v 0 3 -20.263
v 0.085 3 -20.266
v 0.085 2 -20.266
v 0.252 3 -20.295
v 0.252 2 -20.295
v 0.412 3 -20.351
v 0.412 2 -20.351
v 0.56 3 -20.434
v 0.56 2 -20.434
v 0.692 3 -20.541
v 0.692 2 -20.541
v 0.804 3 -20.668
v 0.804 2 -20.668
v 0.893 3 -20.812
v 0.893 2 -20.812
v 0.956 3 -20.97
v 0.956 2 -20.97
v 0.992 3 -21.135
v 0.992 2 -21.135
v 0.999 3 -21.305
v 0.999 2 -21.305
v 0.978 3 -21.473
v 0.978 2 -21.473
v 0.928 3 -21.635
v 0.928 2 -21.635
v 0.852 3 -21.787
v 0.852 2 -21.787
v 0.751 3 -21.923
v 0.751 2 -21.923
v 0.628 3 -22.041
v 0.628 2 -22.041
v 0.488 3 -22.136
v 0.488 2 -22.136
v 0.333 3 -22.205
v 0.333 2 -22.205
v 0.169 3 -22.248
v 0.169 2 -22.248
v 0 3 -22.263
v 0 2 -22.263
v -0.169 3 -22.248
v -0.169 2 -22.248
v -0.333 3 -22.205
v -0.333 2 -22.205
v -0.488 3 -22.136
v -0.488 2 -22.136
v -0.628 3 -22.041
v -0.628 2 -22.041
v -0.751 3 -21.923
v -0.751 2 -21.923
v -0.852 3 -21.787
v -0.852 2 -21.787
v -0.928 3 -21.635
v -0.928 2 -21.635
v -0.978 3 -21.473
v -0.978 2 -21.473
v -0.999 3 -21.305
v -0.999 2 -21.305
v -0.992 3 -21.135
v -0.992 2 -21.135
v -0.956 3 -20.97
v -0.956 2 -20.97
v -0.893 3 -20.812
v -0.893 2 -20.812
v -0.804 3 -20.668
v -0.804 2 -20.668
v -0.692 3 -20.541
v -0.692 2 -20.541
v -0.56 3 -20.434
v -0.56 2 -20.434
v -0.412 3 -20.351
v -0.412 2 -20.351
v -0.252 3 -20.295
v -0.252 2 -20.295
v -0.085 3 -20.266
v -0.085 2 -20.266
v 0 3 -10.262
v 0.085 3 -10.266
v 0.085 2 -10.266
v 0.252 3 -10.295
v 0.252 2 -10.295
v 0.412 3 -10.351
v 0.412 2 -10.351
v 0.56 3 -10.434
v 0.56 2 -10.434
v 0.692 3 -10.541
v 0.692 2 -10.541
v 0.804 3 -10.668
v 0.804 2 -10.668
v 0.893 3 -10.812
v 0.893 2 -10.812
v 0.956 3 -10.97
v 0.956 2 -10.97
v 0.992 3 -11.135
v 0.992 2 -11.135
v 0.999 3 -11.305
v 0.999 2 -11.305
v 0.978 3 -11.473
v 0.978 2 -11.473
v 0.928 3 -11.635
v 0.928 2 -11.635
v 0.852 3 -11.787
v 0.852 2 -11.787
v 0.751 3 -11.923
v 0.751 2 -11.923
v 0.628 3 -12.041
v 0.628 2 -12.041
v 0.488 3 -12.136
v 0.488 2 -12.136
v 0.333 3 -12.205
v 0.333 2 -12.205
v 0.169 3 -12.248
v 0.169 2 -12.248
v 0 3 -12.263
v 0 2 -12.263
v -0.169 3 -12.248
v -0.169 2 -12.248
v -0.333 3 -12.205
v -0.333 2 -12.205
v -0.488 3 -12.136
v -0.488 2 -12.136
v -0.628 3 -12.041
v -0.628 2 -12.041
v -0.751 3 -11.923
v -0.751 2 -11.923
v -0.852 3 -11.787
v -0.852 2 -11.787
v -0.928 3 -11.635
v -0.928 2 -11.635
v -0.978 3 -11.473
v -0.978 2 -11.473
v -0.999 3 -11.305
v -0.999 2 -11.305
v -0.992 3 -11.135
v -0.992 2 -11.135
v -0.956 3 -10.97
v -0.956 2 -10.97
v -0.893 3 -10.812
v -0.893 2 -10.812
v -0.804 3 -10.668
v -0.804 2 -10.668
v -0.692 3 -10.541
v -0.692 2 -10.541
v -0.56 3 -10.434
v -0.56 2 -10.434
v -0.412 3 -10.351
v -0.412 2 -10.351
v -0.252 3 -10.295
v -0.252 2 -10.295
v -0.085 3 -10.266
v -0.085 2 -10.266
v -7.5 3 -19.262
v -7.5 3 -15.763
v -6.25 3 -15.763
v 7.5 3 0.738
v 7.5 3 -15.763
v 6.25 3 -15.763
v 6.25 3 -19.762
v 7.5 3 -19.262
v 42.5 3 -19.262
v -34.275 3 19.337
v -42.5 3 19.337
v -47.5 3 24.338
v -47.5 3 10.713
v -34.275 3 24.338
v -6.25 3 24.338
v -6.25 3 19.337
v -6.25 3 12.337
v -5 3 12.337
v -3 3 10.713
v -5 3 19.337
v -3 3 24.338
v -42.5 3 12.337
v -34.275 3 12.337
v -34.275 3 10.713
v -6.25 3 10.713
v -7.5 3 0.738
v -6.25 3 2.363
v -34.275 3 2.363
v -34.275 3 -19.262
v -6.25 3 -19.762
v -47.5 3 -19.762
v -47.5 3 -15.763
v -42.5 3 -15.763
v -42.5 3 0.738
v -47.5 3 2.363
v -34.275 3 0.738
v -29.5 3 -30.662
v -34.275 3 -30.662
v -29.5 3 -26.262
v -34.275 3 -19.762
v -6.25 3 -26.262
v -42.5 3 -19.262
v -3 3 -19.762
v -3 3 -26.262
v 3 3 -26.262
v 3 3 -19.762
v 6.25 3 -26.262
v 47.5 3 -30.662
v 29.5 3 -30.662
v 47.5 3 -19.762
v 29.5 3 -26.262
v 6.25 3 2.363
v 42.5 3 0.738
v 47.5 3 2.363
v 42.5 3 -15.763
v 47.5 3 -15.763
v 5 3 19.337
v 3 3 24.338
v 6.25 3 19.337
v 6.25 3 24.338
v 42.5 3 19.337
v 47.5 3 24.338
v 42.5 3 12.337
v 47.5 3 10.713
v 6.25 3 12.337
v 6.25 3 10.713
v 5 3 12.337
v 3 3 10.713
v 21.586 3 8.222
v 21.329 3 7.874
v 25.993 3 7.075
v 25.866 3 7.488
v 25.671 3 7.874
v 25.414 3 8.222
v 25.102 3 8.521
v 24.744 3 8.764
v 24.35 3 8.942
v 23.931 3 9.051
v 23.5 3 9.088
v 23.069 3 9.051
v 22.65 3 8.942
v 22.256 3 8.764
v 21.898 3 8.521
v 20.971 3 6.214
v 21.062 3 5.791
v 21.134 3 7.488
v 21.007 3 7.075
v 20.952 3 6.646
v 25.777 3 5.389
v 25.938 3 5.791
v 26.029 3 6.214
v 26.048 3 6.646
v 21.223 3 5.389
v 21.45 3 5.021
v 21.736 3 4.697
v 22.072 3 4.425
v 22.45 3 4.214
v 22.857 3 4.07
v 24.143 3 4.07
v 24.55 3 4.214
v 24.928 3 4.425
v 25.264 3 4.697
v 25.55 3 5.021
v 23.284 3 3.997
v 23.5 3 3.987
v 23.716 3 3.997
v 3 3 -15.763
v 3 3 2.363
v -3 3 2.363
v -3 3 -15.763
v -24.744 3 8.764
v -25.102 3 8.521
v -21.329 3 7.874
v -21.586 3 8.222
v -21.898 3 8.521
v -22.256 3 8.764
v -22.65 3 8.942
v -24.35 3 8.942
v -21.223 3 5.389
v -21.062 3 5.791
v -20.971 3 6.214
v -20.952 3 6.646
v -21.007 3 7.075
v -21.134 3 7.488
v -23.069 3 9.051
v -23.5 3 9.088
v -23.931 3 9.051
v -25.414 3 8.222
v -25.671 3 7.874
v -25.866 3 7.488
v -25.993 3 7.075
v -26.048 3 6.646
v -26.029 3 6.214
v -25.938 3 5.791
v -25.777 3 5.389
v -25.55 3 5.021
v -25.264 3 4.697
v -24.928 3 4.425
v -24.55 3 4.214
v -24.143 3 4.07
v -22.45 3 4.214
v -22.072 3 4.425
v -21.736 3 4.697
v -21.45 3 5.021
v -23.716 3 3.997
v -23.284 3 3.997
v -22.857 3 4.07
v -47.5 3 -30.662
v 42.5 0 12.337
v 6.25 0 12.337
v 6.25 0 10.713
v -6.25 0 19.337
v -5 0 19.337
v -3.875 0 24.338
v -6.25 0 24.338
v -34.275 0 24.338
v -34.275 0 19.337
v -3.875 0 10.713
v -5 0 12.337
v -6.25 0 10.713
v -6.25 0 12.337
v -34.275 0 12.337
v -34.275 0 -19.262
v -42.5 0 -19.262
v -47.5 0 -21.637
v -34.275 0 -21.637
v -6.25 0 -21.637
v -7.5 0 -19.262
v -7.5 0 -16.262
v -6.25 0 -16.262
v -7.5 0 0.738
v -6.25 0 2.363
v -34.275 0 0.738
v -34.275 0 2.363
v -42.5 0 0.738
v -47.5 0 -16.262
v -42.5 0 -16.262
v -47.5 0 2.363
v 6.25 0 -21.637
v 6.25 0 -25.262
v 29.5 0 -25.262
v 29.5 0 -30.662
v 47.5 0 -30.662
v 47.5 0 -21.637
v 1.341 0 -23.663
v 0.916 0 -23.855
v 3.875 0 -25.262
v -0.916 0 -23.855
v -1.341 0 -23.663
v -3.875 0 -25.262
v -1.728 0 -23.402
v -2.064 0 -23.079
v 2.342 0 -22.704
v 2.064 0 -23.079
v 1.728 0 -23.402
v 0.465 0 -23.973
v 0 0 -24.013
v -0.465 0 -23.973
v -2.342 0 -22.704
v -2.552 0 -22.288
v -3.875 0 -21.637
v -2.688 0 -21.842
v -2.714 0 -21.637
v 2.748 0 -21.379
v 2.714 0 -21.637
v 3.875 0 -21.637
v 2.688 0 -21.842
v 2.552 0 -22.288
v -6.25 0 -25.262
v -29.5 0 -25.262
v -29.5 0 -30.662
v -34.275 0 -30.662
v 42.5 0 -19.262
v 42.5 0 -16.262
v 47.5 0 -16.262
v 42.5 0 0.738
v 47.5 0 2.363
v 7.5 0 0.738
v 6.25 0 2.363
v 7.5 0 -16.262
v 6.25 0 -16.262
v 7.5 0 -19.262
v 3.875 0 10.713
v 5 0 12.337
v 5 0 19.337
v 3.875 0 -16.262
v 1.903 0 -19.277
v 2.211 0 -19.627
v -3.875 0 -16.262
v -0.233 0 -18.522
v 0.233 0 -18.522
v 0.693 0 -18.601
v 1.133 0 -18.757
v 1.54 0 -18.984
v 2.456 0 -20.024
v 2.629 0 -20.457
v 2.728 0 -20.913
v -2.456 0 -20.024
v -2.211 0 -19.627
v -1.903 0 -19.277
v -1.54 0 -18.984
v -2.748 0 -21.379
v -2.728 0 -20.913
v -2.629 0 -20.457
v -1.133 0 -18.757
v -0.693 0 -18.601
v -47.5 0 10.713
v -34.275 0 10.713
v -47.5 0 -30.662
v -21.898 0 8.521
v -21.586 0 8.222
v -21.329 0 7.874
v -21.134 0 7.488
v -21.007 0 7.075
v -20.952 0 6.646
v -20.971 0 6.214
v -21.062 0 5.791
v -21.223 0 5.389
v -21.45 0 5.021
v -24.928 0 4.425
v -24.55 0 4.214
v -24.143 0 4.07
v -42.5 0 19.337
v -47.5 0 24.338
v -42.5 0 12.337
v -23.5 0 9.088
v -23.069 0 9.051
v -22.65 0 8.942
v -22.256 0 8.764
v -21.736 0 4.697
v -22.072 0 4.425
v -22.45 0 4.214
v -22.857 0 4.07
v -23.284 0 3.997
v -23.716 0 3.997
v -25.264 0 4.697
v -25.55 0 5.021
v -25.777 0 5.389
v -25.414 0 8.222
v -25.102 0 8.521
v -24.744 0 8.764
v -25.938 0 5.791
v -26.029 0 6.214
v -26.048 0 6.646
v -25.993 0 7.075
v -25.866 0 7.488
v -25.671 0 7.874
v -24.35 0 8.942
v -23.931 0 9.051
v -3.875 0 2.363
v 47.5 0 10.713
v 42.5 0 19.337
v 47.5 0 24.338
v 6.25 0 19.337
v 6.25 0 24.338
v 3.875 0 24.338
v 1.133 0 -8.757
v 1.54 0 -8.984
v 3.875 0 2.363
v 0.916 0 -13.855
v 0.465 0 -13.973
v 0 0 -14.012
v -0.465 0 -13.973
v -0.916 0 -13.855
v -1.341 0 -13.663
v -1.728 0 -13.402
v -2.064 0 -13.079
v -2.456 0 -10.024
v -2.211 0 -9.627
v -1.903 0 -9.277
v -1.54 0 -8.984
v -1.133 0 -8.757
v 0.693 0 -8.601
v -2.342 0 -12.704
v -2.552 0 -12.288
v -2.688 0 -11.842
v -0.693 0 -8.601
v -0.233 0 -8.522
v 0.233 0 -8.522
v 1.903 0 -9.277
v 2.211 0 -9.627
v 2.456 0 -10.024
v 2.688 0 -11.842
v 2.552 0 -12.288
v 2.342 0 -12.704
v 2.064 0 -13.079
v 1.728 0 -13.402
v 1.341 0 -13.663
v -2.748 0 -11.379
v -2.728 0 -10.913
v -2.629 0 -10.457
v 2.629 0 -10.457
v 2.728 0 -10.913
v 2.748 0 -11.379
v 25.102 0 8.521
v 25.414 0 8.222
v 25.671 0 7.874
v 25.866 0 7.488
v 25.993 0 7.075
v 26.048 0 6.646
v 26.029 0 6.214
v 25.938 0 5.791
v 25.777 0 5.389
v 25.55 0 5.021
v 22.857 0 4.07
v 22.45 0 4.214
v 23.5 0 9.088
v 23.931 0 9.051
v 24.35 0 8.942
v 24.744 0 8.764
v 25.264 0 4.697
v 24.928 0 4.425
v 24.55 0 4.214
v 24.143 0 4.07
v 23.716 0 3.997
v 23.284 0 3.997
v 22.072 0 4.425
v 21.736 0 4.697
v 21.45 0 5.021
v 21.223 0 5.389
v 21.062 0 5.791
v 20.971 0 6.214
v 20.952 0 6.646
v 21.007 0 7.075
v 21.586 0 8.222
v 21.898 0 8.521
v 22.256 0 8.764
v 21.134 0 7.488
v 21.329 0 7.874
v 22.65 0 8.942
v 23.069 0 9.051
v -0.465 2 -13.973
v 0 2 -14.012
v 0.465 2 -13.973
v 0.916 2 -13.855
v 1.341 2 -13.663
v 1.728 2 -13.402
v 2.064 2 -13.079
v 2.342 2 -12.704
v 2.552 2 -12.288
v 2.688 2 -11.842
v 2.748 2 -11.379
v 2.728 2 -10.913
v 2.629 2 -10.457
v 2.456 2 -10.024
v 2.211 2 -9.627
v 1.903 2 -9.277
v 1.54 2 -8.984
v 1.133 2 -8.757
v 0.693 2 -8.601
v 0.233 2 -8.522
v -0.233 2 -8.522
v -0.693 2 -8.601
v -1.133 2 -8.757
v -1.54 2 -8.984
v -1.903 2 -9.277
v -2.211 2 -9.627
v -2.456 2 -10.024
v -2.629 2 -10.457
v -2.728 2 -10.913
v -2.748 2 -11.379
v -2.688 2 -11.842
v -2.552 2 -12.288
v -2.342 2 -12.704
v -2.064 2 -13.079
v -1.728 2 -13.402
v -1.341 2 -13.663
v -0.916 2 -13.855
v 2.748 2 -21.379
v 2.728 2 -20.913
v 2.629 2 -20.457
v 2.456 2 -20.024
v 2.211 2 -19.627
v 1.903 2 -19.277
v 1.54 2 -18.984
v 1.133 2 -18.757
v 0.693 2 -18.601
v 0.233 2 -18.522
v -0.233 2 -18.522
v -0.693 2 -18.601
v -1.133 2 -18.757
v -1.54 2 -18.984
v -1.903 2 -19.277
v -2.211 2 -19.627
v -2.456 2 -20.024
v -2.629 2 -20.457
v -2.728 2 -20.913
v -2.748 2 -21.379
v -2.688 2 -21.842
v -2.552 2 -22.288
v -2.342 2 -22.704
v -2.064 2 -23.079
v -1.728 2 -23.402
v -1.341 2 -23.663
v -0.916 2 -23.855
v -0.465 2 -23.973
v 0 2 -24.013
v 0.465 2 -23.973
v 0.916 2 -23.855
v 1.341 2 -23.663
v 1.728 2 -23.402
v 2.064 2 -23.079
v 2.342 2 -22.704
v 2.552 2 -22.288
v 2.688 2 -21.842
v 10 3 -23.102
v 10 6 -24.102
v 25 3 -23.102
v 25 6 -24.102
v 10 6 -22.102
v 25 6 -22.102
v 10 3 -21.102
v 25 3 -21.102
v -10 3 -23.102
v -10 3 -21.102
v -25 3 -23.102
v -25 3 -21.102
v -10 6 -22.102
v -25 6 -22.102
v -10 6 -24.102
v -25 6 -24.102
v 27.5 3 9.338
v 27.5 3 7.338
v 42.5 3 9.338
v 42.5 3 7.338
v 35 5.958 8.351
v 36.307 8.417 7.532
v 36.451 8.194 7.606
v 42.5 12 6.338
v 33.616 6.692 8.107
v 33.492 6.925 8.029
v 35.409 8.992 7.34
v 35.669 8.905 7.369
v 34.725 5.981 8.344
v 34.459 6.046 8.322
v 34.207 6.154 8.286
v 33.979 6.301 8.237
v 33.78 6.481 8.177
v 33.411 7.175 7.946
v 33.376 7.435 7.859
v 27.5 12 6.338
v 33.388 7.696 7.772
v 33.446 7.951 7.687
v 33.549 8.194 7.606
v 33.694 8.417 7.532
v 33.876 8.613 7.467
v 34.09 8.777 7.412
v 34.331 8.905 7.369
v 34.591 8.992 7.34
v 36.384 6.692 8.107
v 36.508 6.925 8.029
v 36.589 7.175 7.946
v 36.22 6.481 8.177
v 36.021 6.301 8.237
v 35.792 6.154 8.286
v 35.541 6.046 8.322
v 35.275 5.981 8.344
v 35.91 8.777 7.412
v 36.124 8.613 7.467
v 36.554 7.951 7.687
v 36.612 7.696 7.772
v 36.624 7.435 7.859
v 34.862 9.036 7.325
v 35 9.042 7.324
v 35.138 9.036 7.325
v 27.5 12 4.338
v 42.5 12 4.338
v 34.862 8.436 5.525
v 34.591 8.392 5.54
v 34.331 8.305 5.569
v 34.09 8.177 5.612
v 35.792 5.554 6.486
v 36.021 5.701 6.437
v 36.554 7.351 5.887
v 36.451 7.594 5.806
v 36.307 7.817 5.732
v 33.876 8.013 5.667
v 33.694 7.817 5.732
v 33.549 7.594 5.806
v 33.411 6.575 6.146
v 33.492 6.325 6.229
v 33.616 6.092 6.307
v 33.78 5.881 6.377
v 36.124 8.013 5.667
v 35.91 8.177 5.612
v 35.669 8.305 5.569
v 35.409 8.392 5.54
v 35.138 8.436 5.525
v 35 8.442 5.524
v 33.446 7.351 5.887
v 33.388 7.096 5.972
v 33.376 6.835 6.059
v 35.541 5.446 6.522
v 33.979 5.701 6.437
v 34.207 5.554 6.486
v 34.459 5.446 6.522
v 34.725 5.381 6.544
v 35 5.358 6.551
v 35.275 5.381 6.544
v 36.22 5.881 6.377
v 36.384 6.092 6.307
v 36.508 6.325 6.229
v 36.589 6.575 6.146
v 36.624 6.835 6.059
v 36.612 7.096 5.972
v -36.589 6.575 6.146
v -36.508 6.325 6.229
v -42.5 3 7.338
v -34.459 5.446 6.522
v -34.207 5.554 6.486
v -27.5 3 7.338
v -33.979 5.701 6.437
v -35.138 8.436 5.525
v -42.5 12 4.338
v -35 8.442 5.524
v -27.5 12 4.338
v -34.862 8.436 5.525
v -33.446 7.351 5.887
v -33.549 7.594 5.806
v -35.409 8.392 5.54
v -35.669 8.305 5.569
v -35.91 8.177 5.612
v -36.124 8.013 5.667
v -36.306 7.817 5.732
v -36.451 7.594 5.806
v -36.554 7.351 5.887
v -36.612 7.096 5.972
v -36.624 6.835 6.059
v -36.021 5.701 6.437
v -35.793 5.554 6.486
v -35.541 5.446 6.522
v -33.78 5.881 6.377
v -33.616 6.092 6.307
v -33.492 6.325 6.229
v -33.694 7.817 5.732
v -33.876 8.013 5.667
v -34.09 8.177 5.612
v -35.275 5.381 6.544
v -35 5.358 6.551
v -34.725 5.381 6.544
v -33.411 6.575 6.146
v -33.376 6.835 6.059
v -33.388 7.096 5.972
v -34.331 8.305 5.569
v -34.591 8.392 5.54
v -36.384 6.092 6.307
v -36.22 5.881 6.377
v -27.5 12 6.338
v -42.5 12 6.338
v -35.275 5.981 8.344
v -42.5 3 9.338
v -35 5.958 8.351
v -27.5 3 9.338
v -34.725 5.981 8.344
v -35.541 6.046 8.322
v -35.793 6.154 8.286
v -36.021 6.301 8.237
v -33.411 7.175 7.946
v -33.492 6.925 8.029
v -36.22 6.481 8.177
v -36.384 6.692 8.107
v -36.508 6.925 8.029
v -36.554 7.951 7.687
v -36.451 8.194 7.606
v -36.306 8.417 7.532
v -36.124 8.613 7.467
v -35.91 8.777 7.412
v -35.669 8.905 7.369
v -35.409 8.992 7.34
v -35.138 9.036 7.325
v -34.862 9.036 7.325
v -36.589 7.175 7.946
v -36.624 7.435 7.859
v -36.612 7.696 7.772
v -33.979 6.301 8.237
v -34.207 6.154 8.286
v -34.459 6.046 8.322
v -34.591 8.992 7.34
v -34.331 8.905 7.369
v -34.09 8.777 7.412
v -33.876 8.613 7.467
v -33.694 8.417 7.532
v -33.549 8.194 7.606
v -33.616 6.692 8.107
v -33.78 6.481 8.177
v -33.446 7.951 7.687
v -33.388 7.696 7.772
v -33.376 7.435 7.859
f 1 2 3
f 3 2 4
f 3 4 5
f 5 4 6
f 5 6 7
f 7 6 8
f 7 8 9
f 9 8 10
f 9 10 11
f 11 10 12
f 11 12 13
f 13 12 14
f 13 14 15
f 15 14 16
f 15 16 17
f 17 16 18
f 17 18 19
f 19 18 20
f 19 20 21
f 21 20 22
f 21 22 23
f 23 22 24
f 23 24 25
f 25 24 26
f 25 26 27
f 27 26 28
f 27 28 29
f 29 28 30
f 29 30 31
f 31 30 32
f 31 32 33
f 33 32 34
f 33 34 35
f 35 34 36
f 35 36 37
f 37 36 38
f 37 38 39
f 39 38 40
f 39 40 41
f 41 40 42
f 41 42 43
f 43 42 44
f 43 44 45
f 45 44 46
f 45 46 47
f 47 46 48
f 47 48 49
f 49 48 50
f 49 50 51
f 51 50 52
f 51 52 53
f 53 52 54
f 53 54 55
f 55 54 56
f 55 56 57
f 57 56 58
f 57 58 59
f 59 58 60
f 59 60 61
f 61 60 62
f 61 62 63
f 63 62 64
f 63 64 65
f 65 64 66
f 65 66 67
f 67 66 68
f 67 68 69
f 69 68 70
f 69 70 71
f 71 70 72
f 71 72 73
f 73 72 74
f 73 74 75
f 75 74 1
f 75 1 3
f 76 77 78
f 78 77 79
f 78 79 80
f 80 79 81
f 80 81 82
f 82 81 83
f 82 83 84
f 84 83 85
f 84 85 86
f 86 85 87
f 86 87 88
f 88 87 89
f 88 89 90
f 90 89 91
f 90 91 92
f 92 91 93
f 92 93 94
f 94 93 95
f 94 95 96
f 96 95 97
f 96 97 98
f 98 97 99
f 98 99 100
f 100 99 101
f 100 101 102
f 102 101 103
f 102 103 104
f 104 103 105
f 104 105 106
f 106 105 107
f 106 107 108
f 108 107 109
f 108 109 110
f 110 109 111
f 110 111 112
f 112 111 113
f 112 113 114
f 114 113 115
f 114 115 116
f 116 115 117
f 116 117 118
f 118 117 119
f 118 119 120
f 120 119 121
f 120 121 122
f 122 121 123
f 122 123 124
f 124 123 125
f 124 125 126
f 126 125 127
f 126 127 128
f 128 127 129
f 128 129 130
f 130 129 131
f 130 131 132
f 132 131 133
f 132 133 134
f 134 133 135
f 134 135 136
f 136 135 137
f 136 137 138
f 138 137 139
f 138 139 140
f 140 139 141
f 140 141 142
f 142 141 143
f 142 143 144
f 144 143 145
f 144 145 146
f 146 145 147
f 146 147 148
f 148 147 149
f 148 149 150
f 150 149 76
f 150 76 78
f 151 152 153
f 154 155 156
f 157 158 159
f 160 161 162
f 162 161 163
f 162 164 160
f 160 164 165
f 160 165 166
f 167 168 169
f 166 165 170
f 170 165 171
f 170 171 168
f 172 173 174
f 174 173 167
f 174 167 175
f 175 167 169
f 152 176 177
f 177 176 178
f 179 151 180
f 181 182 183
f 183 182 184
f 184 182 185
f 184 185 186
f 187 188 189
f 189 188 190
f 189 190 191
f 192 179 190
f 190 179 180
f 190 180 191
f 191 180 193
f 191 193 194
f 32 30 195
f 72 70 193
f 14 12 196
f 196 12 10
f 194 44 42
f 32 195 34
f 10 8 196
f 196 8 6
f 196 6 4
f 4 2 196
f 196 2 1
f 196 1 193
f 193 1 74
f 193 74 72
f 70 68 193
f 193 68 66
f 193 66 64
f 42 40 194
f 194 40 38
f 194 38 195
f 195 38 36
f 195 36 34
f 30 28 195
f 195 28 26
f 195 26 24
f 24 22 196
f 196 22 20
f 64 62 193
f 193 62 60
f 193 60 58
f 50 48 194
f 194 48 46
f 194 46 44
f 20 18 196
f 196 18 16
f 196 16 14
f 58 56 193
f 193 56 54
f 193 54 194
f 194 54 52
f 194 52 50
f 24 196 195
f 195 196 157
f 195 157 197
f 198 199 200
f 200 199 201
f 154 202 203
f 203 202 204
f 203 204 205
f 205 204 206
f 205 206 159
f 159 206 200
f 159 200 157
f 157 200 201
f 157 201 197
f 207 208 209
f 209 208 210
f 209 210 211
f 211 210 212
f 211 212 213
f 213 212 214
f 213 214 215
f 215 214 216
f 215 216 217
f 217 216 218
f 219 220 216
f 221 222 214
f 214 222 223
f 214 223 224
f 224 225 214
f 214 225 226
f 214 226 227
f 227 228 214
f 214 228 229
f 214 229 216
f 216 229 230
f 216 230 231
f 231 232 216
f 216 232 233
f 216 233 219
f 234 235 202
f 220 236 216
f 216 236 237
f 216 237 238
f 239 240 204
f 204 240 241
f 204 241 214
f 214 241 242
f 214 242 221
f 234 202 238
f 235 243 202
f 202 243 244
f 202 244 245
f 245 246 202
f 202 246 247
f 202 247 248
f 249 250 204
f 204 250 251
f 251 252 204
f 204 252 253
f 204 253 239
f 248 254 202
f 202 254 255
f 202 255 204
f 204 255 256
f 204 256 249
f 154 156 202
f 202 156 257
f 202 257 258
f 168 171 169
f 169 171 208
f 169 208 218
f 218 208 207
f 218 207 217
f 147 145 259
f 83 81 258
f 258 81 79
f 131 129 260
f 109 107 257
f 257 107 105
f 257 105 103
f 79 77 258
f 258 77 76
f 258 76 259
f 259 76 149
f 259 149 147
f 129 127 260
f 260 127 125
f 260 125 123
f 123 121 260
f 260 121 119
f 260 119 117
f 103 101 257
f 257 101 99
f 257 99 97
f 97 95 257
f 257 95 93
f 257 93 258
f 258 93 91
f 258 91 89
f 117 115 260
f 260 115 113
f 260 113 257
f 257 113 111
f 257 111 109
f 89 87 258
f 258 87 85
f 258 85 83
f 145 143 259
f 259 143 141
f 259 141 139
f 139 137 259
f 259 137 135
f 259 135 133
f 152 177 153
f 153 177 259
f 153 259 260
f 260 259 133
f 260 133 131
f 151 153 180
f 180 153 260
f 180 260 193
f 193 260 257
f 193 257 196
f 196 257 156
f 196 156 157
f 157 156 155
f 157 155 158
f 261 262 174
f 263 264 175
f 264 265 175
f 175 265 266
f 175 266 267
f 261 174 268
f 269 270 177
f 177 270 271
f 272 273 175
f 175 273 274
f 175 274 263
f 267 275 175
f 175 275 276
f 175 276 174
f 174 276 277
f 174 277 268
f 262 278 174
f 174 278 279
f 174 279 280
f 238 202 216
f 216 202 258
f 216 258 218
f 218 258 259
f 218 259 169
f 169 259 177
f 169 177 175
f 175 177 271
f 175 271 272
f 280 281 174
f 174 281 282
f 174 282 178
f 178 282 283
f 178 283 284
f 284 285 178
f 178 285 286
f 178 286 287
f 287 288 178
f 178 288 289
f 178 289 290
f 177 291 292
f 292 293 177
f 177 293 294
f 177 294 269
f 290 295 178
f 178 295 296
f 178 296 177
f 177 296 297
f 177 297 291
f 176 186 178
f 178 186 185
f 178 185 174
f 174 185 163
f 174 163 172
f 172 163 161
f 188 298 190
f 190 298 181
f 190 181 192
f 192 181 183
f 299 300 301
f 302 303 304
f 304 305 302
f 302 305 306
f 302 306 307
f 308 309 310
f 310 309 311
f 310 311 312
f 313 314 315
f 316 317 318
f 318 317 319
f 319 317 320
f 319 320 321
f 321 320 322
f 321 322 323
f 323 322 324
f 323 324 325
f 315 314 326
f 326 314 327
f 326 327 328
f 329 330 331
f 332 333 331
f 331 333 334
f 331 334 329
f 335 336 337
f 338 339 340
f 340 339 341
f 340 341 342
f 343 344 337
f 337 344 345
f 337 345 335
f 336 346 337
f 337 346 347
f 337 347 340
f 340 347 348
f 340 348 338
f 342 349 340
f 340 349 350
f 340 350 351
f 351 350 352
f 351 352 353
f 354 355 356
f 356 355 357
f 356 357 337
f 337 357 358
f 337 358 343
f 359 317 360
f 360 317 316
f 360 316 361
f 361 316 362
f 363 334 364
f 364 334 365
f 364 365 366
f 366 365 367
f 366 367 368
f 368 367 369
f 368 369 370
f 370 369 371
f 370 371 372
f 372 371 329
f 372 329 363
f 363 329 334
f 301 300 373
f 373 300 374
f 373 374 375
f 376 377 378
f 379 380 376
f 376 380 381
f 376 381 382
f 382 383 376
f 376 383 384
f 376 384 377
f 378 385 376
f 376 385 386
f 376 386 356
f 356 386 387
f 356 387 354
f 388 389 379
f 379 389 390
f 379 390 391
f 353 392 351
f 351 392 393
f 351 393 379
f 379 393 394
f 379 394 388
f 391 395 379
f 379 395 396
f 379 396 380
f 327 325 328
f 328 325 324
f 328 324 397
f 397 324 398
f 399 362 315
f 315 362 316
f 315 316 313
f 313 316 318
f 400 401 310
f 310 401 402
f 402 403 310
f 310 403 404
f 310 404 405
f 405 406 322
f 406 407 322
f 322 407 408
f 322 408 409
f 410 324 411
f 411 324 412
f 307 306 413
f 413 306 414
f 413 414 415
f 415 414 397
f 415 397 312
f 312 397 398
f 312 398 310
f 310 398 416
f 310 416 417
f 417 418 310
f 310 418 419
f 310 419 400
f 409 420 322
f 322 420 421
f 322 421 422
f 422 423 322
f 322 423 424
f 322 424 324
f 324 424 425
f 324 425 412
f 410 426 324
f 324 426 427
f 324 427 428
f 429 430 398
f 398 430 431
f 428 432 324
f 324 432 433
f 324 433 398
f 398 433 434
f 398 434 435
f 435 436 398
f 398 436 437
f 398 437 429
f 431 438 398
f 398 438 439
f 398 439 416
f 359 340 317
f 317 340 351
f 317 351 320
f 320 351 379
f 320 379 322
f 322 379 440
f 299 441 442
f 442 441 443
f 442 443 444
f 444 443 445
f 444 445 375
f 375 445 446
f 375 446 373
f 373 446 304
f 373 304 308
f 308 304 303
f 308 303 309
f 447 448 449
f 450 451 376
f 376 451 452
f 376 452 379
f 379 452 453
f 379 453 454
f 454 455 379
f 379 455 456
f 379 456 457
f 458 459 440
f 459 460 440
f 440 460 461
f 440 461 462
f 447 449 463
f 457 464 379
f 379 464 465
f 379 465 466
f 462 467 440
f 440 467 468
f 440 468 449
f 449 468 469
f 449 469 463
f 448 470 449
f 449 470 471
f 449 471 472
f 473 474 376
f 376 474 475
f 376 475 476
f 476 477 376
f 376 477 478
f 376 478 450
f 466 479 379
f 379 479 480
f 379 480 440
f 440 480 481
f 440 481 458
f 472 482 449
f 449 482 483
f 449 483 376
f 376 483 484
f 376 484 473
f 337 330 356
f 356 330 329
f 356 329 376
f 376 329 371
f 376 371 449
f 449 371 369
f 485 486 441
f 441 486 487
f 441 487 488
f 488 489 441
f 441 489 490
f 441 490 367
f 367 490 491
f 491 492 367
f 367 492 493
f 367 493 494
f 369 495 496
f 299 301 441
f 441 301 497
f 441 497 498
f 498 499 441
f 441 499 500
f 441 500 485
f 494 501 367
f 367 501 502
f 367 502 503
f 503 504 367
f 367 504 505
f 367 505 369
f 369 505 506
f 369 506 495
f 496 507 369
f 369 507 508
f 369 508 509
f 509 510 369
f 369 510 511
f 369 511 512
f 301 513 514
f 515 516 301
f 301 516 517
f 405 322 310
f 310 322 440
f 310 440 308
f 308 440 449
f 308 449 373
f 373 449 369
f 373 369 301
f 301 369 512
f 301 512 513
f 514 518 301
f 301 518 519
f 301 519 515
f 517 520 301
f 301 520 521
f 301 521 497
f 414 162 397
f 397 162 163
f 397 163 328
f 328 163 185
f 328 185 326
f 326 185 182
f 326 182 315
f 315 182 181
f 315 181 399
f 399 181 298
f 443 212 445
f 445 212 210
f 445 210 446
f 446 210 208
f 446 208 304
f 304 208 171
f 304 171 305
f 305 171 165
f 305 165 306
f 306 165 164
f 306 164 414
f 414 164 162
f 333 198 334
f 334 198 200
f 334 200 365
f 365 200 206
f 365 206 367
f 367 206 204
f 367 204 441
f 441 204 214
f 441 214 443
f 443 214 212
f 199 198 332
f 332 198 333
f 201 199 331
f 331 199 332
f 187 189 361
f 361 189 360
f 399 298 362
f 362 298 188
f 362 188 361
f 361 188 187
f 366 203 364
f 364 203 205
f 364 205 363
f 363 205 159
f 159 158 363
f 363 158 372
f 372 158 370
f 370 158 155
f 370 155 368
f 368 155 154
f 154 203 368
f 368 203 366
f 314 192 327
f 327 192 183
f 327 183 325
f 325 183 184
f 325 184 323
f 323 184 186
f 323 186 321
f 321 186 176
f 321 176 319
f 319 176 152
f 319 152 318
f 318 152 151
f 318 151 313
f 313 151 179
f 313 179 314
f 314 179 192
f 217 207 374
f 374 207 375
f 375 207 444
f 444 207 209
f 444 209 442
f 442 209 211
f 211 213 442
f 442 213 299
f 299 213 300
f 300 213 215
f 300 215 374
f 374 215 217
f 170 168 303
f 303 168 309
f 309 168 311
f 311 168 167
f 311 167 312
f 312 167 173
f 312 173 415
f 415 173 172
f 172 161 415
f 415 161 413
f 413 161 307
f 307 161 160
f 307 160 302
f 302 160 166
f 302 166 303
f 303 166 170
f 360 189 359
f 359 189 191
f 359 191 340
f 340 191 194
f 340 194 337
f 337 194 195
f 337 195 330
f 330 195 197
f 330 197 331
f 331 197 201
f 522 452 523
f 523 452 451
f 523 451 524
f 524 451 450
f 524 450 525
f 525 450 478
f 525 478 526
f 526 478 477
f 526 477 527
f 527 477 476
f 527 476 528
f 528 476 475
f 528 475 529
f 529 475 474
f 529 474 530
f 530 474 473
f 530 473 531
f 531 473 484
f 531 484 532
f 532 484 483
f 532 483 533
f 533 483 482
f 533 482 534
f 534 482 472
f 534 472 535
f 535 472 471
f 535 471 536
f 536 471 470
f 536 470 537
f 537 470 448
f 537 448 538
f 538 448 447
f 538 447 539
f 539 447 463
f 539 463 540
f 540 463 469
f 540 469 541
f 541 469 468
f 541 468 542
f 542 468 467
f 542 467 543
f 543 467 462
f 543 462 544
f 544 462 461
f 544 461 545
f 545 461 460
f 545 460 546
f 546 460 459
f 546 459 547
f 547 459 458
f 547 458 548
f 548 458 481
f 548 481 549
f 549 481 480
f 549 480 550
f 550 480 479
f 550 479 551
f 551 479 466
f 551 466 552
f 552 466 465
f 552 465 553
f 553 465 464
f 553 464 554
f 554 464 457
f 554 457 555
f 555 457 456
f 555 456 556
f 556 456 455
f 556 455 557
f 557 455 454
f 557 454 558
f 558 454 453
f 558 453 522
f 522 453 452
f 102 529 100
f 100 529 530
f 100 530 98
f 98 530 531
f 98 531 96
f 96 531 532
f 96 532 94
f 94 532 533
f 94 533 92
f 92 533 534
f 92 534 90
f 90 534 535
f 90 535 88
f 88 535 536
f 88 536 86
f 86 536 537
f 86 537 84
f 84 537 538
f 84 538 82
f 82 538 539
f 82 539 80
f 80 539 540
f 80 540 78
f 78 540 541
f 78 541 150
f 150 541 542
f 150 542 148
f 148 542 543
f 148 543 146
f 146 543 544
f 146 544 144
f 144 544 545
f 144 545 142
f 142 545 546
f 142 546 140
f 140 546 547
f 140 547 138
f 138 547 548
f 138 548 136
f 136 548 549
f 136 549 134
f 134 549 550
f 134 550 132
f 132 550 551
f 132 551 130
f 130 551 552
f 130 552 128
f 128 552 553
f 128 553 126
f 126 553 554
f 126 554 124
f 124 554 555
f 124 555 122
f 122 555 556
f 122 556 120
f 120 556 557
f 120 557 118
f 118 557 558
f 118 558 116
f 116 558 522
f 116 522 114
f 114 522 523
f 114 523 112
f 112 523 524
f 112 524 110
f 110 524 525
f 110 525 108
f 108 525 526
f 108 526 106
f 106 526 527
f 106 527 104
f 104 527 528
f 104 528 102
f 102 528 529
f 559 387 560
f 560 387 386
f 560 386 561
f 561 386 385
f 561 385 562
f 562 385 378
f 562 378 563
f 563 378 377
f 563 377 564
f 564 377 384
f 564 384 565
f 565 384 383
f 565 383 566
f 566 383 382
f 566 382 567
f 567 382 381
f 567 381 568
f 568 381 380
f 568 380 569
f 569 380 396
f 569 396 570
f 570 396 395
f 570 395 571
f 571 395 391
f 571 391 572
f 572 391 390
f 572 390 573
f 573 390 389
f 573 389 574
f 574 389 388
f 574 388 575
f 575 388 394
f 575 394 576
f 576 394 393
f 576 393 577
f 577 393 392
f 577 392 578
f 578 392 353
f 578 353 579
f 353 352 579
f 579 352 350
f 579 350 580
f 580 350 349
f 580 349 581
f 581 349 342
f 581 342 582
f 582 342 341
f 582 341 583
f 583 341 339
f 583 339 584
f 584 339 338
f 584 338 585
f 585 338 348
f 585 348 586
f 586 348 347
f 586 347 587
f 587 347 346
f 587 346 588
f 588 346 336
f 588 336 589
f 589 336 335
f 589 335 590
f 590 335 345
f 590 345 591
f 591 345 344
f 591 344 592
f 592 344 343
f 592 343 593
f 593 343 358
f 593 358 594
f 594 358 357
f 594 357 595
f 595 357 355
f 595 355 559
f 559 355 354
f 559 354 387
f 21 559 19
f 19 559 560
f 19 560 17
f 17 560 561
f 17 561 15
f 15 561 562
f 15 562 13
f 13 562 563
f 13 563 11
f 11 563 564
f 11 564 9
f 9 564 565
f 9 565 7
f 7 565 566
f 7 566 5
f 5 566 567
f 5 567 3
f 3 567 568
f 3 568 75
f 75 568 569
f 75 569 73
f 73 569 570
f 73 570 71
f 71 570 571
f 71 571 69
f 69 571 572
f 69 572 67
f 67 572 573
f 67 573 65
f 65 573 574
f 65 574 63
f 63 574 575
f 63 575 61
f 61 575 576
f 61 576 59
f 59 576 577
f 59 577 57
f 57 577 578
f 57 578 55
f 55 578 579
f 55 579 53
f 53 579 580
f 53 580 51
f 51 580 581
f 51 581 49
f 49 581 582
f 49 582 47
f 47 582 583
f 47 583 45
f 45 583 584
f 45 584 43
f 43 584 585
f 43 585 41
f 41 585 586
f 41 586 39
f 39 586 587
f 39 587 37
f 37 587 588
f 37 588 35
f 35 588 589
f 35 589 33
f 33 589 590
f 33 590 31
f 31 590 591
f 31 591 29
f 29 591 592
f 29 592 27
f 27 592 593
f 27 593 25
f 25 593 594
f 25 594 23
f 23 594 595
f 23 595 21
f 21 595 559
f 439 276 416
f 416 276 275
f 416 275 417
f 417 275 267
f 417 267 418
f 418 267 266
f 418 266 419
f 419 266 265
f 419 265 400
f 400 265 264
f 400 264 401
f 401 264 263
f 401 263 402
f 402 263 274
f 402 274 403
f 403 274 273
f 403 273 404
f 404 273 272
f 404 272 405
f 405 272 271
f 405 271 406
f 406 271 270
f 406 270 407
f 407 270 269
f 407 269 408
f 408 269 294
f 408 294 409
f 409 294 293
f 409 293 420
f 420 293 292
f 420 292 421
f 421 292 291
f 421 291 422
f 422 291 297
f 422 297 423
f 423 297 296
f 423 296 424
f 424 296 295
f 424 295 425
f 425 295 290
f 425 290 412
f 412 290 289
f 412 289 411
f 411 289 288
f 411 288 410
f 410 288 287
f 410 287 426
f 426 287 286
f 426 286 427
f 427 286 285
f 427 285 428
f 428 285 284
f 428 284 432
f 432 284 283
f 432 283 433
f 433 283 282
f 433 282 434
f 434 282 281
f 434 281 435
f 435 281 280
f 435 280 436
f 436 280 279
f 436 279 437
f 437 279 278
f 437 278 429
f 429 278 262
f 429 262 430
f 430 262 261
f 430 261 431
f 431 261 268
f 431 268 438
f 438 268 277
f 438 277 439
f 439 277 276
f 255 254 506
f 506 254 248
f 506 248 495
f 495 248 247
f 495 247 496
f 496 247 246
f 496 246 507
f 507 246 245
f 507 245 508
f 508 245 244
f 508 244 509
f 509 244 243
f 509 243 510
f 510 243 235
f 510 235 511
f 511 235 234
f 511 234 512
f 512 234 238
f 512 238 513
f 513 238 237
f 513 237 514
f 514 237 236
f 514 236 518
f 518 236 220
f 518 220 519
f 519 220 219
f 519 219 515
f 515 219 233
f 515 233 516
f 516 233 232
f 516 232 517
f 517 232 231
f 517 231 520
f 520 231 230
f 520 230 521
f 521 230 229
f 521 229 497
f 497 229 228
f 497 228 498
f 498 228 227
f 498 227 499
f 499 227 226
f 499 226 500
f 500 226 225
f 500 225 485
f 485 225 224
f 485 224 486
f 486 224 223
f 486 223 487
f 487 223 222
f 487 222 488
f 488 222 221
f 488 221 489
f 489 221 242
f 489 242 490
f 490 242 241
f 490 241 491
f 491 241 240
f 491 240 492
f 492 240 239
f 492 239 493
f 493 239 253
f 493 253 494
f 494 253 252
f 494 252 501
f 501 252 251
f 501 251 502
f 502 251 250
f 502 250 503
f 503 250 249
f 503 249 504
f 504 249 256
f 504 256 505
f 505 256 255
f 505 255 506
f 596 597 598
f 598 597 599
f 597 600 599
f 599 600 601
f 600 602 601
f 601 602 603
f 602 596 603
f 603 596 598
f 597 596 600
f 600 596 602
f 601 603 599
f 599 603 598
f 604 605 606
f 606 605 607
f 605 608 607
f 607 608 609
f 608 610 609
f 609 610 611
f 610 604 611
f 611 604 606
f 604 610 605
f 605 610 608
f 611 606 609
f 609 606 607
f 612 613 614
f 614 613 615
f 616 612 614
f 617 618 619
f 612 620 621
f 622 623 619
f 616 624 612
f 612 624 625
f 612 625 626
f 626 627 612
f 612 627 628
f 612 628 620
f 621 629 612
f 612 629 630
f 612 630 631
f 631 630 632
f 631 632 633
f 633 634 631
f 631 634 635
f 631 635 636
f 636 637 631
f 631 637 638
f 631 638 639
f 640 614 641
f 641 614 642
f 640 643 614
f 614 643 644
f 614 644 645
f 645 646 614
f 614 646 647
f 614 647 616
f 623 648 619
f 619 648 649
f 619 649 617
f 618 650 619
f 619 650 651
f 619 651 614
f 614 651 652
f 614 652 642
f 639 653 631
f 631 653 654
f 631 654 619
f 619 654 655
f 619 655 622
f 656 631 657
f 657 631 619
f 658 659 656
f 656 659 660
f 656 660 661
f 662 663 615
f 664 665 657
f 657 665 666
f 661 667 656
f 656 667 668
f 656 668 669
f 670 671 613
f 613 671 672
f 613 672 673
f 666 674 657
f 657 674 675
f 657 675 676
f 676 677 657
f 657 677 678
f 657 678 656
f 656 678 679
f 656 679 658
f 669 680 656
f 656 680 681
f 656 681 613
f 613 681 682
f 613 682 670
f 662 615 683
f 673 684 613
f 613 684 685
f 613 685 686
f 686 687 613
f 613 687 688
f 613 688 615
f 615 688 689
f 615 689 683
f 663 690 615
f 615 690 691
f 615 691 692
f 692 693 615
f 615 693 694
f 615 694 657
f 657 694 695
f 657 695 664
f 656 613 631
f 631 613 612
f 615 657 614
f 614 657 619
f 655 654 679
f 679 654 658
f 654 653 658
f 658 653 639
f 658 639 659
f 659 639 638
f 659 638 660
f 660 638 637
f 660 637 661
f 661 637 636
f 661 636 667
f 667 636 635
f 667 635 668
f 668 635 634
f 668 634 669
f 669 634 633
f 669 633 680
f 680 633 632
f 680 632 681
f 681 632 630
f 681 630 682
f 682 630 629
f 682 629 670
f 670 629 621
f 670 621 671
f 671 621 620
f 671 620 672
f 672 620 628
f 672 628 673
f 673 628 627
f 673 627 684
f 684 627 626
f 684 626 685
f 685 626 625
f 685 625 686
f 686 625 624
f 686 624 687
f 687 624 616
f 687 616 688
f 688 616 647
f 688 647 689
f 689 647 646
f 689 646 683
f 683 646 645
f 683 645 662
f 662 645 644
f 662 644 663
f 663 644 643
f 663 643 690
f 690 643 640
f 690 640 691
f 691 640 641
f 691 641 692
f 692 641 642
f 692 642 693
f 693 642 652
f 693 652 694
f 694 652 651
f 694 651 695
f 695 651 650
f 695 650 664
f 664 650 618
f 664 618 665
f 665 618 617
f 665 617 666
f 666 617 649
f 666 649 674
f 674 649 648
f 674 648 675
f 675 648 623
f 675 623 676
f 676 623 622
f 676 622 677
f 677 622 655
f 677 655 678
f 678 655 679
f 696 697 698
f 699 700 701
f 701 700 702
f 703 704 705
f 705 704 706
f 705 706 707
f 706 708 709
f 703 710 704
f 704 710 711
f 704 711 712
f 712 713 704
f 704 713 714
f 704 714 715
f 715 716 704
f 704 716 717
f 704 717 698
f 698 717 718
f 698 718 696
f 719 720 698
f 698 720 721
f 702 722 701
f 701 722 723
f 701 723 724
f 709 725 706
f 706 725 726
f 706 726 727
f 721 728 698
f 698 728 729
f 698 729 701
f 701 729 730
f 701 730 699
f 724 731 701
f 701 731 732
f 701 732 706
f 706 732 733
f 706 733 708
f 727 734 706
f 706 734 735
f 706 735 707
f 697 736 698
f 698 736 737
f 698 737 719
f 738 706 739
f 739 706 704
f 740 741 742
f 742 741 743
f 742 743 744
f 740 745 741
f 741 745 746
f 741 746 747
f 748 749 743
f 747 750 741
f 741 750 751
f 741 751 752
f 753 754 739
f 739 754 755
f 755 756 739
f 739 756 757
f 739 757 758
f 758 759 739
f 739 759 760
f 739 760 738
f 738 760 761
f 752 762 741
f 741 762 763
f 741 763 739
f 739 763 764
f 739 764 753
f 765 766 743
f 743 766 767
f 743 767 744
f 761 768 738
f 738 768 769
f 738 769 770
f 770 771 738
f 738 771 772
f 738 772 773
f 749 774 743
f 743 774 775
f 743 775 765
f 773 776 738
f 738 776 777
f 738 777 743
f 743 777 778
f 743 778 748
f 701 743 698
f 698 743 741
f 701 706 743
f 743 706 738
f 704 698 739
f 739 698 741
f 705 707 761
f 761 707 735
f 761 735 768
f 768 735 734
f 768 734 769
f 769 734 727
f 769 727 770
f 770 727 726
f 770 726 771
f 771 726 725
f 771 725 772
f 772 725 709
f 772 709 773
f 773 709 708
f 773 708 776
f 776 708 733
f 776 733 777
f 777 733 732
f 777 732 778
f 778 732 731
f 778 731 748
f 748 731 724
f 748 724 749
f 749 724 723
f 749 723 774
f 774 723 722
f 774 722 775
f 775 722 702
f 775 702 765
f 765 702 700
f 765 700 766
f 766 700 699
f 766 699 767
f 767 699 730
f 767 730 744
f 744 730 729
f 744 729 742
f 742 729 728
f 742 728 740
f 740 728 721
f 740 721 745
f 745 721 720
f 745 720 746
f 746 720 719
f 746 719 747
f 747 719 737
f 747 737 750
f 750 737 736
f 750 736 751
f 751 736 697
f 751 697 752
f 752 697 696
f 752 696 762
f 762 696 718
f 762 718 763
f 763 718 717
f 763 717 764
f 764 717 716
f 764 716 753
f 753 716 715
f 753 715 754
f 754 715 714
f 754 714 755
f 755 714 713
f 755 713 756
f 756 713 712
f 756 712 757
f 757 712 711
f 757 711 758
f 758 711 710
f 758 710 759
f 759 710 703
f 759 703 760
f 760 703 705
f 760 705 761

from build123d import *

# Parameters (mm, degrees)
CROQUIS1_R                = 1
CROQUIS1_W                = 35
CROQUIS1_H                = 20
CROQUIS1_W_2              = 37.5
CROQUIS1_H_2              = 7
SALIENTE_EXTRUIR1_DEPTH   = 3
CUT_EXTRUDE1_DEPTH        = 59
SKETCH3_R                 = 2.75
CUT_EXTRUDE2_DEPTH        = 2
CORTAR_EXTRUIR1_REACH     = 58.617
CROQUIS2_R                = 2.55
SALIENTE_EXTRUIR6_DEPTH   = 95
SALIENTE_EXTRUIR6_2_DEPTH = 95
CROQUIS4_W                = 20
CROQUIS4_H                = 3.002956163
CROQUIS4_W_2              = 22.5
CROQUIS4_H_2              = 3
CORTAR_EXTRUIR2_DEPTH     = 95
CROQUIS5_W                = 5
CROQUIS5_H                = 9
CROQUIS5_W_2              = 55
CORTAR_EXTRUIR3_DEPTH     = 30
CROQUIS6_R                = 1.625
CORTAR_EXTRUIR4_DEPTH     = 1.897367


with BuildPart() as part:
    # Croquis1 → Saliente-Extruir1 (new body)
    with BuildSketch(Plane(origin=(0, 0, 0), x_dir=(1, 0, 0), z_dir=(0, 1, 0))):
        Polygon((-47.5, -24.3375), (47.5, -24.3375), (47.5, 30.6625), (29.5, 30.6625), (29.5, 26.2625), (-29.5, 26.2625), (-29.5, 30.6625), (-47.5, 30.6625), align=None)
        with Locations(Location((0, 21.2625, 0), (0, 0, 270))):
            Circle(CROQUIS1_R, mode=Mode.SUBTRACT)
        with Locations(Location((0, 11.2625, 0), (0, 0, 270))):
            Circle(CROQUIS1_R, mode=Mode.SUBTRACT)
        with Locations((-25, 9.2625)):
            Rectangle(CROQUIS1_W, CROQUIS1_H, mode=Mode.SUBTRACT)
        with Locations((25, 9.2625)):
            Rectangle(CROQUIS1_W, CROQUIS1_H, mode=Mode.SUBTRACT)
        with Locations((-23.75, -15.8375)):
            Rectangle(CROQUIS1_W_2, CROQUIS1_H_2, mode=Mode.SUBTRACT)
        with Locations((23.75, -15.8375)):
            Rectangle(CROQUIS1_W_2, CROQUIS1_H_2, mode=Mode.SUBTRACT)
    extrude(amount=SALIENTE_EXTRUIR1_DEPTH)

    # Sketch2 → Cut-Extrude1 (cut)
    with BuildSketch(Plane.ZY.offset(-29.5)):
        Polygon((-26.2625, 3), (-25.2625, 0), (-26.2625, 0), align=None)
    extrude(amount=CUT_EXTRUDE1_DEPTH, mode=Mode.SUBTRACT)

    # Sketch3 → Cut-Extrude2 (cut)
    with BuildSketch(Plane.XZ):
        with Locations(Location((0, -11.2625, 0), (0, 0, 270))):
            Circle(SKETCH3_R)
        with Locations(Location((0, -21.2625, 0), (0, 0, 270))):
            Circle(SKETCH3_R)
    extrude(amount=-CUT_EXTRUDE2_DEPTH, mode=Mode.SUBTRACT)

    # Croquis2 → Cortar-Extruir1 (cut, up to next)
    with BuildSketch(Plane(origin=(0, 3, 0), x_dir=(1, 0, 0), z_dir=(0, 1, 0)), mode=Mode.PRIVATE) as cortar_extruir1_sk1:
        with Locations(Location((-23.5, -6.5375, 0), (0, 0, 270))):
            Circle(CROQUIS2_R)
    cortar_extruir1_tool1 = extrude(cortar_extruir1_sk1.sketch, amount=-CORTAR_EXTRUIR1_REACH, mode=Mode.PRIVATE) & part.part
    # Croquis2 → Cortar-Extruir1 (cut, up to next)
    with BuildSketch(Plane(origin=(0, 3, 0), x_dir=(1, 0, 0), z_dir=(0, 1, 0)), mode=Mode.PRIVATE) as cortar_extruir1_sk2:
        with Locations(Location((23.5, -6.5375, 0), (0, 0, 270))):
            Circle(CROQUIS2_R)
    cortar_extruir1_tool2 = extrude(cortar_extruir1_sk2.sketch, amount=-CORTAR_EXTRUIR1_REACH, mode=Mode.PRIVATE) & part.part
    add(cortar_extruir1_tool1.solids().sort_by_distance((-23.5, 3, 6.5375))[0], mode=Mode.SUBTRACT)
    add(cortar_extruir1_tool2.solids().sort_by_distance((23.5, 3, 6.5375))[0], mode=Mode.SUBTRACT)


with BuildPart() as body_2:
    # Croquis3 → Saliente-Extruir6 (new body)
    with BuildSketch(Plane(origin=(47.5, 0, 0), x_dir=(0, 0, -1), z_dir=(1, 0, 0))):
        Polygon((-9.3375, 3), (-6.3375, 12), (-4.3375, 12), (-7.3375, 3), align=None)
    extrude(amount=-SALIENTE_EXTRUIR6_DEPTH)

    # Croquis5 → Cortar-Extruir3 (cut)
    with BuildSketch(Plane.XY.offset(24.3375)):
        with Locations((45, 7.5)):
            Rectangle(CROQUIS5_W, CROQUIS5_H)
        with Locations((-45, 7.5)):
            Rectangle(CROQUIS5_W, CROQUIS5_H)
        with Locations((0, 7.5)):
            Rectangle(CROQUIS5_W_2, CROQUIS5_H)
    extrude(amount=-CORTAR_EXTRUIR3_DEPTH, mode=Mode.SUBTRACT)


with BuildPart() as body_3:
    # Croquis3 → Saliente-Extruir6 2 (new body)
    with BuildSketch(Plane(origin=(47.5, 0, 0), x_dir=(0, 0, -1), z_dir=(1, 0, 0))):
        Polygon((21.1025, 3), (22.1025, 6), (24.1025, 6), (23.1025, 3), align=None)
    extrude(amount=-SALIENTE_EXTRUIR6_2_DEPTH)

    # Croquis4 → Cortar-Extruir2 (cut)
    with BuildSketch(Plane(origin=(0, 0, -30.6625), x_dir=(-1, 0, 0), z_dir=(0, 0, -1))):
        with Locations((0, 4.501478082)):
            Rectangle(CROQUIS4_W, CROQUIS4_H)
        with Locations((-36.25, 4.5)):
            Rectangle(CROQUIS4_W_2, CROQUIS4_H_2)
        with Locations((36.25, 4.5)):
            Rectangle(CROQUIS4_W_2, CROQUIS4_H_2)
    extrude(amount=-CORTAR_EXTRUIR2_DEPTH, mode=Mode.SUBTRACT)


with BuildPart() as cortar_extruir2_piece_1:
    # of the separate pieces the step leaves, piece 1, a body of its own (cortar_extruir2_pieces)
    add(body_3.part.solids().sort_by_distance((-10, 6, -22.1025))[0])


with BuildPart() as cortar_extruir2_piece_2:
    # of the separate pieces the step leaves, piece 2, a body of its own (cortar_extruir2_pieces)
    add(body_3.part.solids().sort_by_distance((25, 3, -21.1025))[0])


with BuildPart() as cortar_extruir3_piece_1:
    # of the separate pieces the step leaves, piece 1, a body of its own (cortar_extruir3_pieces)
    add(body_2.part.solids().sort_by_distance((42.5, 12, 6.3375))[0])


with BuildPart() as cortar_extruir3_piece_2:
    # of the separate pieces the step leaves, piece 2, a body of its own (cortar_extruir3_pieces)
    add(body_2.part.solids().sort_by_distance((-27.5, 12, 6.3375))[0])


with BuildPart() as cortar_extruir4_tool:
    # Croquis6 → Cortar-Extruir4 (new body)
    with BuildSketch(Plane(origin=(0, 3.10125, 9.30375), x_dir=(1, 0, 0), z_dir=(0, 0.3162277660168377, 0.948683298050514))):
        with Locations(Location((-35, 4.636689619, 0), (0, 0, 270))):
            Circle(CROQUIS6_R)
        with Locations(Location((35, 4.636689619, 0), (0, 0, 90))):
            Circle(CROQUIS6_R)
    extrude(amount=-CORTAR_EXTRUIR4_DEPTH)


with BuildPart() as cortar_extruir3_piece_1_1:
    add(cortar_extruir3_piece_1.part)

    # Cortar-Extruir4: cut by cortar_extruir4_tool
    add(cortar_extruir4_tool.part, mode=Mode.SUBTRACT)


with BuildPart() as cortar_extruir3_piece_2_1:
    add(cortar_extruir3_piece_2.part)

    # Cortar-Extruir4: cut by cortar_extruir4_tool
    add(cortar_extruir4_tool.part, mode=Mode.SUBTRACT)


solid = Compound([part.part, cortar_extruir2_piece_1.part, cortar_extruir2_piece_2.part, cortar_extruir3_piece_1_1.part, cortar_extruir3_piece_2_1.part])
